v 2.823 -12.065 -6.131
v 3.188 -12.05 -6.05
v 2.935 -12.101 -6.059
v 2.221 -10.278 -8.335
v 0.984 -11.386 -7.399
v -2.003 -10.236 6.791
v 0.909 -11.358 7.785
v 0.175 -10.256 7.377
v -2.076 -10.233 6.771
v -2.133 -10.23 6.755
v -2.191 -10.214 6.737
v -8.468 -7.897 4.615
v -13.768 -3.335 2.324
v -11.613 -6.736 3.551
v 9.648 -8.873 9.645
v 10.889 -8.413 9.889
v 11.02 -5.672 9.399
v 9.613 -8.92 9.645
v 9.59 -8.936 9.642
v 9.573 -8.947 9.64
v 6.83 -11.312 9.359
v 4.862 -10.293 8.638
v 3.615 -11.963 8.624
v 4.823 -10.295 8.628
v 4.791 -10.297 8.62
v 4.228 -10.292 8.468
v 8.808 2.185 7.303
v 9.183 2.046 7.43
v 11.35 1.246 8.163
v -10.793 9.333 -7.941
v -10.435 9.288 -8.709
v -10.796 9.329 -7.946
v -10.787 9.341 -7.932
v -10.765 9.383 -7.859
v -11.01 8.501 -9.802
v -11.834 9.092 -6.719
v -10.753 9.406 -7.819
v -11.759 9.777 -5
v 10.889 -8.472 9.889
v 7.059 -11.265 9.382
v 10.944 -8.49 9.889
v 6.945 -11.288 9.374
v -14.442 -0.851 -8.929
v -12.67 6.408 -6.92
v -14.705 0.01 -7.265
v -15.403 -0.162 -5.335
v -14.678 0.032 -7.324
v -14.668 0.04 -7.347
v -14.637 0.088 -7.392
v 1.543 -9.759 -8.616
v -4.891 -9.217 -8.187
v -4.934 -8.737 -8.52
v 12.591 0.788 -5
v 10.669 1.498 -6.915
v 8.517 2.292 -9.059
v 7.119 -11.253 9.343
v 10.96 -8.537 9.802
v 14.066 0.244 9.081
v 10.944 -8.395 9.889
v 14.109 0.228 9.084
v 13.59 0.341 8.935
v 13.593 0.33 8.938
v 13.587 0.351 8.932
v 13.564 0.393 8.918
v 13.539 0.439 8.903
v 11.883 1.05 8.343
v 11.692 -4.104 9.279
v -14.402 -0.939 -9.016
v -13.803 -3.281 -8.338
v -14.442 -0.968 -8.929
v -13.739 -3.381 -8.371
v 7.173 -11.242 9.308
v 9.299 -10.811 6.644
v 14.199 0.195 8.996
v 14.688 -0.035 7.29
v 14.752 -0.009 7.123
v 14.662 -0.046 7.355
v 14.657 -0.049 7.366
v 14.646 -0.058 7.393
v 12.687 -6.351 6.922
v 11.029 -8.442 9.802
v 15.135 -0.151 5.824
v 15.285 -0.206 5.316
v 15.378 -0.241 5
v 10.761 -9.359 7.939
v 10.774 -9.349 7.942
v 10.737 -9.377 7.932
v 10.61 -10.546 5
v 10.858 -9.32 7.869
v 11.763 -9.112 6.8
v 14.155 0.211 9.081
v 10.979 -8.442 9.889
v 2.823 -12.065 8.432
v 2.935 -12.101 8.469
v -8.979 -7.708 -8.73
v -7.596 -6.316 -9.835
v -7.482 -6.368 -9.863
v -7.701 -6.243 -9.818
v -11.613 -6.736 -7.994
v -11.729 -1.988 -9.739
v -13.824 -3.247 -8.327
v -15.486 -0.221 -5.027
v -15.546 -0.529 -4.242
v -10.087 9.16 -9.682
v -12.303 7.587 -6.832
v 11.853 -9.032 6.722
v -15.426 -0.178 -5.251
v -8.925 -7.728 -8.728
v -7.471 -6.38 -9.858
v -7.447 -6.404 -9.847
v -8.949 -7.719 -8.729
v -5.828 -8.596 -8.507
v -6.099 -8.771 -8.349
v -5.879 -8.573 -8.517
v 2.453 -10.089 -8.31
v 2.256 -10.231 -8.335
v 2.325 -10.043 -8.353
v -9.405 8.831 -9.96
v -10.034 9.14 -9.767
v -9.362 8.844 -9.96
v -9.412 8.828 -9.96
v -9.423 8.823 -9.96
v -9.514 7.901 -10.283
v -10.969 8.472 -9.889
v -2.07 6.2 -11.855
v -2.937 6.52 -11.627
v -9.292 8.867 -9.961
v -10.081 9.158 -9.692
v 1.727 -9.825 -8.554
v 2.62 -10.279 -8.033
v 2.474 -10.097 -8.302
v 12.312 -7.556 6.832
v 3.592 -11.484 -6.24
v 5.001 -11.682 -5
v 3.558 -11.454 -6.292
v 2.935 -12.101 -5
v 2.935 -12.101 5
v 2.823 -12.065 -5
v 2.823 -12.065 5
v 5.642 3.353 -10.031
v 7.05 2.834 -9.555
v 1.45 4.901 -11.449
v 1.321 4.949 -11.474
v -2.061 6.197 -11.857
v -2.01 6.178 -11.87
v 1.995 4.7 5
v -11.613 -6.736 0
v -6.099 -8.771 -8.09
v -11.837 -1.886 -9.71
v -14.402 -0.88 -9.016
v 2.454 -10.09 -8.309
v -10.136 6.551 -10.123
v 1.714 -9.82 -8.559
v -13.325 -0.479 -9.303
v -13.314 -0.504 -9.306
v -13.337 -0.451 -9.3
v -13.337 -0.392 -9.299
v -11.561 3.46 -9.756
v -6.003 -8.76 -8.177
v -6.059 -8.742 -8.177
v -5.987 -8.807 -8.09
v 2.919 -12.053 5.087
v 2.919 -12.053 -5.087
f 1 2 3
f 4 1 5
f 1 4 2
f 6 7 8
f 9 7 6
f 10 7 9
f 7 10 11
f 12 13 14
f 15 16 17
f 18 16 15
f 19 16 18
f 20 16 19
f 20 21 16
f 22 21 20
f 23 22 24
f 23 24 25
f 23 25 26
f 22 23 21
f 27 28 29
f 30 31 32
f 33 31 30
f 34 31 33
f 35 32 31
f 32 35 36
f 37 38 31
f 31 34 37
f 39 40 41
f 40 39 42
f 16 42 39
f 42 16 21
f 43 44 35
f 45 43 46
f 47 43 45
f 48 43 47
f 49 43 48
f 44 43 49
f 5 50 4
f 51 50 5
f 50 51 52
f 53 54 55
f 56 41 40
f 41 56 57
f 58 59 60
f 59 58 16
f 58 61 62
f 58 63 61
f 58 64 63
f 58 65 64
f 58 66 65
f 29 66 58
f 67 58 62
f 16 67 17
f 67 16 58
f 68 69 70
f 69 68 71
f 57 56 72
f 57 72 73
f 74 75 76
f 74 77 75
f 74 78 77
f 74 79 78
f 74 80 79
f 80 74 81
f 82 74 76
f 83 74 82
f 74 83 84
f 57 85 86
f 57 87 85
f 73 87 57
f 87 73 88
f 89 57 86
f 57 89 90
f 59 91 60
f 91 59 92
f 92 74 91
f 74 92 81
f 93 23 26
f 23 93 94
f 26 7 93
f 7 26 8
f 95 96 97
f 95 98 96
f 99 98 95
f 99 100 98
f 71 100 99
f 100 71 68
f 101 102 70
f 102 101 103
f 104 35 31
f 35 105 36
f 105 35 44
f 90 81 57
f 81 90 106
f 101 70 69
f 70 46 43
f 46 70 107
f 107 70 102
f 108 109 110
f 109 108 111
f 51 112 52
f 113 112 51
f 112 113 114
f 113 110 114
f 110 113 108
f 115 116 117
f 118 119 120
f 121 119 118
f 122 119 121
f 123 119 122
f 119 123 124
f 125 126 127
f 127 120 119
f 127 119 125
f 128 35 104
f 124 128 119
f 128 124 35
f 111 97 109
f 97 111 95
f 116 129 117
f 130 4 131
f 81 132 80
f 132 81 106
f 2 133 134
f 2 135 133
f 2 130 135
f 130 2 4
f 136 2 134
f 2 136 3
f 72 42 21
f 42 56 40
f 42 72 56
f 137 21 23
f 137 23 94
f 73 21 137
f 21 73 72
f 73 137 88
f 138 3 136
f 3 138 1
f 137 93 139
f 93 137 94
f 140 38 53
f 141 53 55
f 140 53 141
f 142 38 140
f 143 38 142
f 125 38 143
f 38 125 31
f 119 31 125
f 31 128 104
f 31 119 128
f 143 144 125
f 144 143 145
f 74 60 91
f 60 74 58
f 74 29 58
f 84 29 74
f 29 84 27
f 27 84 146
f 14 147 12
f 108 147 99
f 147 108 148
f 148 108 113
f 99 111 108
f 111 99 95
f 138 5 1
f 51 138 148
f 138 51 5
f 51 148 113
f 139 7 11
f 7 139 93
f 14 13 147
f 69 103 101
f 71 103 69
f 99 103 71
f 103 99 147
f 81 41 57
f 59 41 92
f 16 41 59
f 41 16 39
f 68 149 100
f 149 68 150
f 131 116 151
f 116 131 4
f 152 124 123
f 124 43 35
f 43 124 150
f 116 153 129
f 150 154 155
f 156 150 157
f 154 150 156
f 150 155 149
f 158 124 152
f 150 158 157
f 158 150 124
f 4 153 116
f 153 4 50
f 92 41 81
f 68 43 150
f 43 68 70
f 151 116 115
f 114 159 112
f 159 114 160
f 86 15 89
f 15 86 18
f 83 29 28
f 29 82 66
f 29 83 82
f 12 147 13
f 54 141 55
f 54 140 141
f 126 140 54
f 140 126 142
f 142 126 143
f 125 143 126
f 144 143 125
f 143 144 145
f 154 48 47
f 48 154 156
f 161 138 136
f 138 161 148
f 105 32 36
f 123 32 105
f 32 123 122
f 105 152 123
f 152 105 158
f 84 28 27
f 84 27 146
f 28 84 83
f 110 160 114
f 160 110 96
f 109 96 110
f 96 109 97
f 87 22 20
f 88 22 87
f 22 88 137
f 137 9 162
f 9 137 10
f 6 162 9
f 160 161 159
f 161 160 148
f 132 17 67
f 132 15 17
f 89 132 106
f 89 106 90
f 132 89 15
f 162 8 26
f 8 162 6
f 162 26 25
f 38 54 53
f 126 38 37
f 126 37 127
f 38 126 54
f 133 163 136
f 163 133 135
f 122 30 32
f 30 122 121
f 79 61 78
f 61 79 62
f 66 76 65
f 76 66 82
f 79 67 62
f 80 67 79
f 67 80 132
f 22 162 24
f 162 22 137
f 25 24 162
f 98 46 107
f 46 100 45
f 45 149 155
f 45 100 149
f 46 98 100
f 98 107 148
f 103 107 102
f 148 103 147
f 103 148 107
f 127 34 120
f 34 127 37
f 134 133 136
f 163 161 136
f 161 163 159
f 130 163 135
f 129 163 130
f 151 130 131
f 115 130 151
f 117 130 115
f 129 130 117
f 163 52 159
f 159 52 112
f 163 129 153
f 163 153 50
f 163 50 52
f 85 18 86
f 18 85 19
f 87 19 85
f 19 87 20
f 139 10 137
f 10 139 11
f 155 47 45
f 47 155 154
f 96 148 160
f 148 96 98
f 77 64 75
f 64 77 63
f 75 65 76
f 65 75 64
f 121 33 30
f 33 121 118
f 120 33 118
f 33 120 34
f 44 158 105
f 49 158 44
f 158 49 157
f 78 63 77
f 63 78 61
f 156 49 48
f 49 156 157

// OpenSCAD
// Auto-generated OpenSCAD file

    inner_points = 10*[[-1.6167766456007826, 0.06384352681284394, 0.5000000000001501], [-1.2704727596155507, 1.001965916776716, 0.5000000000009248], [1.2704671898464706, -1.0019702419428729, -0.5000000000009248], [1.6167710758317024, -0.06384785197900072, -0.5000000000001501], [-1.616776645600842, 0.06384352681369176, -0.4999999999998499], [-1.27047275961561, 1.0019659167775639, -0.4999999999990751], [-1.0653621399346023, -0.13970879018153537, 1.309016994374892], [-0.7190582539493701, 0.7984135997823368, 1.3090169943756669], [0.7190526841802901, -0.7984179249484936, -1.3090169943756669], [1.065356570165522, 0.1397044650153786, -1.309016994374892], [1.2704671898465298, -1.0019702419437206, 0.4999999999990751], [1.616771075831762, -0.06384785197984855, 0.4999999999998499], [-1.0653621399347575, -0.13970879017931587, -1.3090169943750025], [-0.7190582539495255, 0.7984135997845563, -1.309016994374228], [-0.17315472787705996, -0.4690633575663862, 1.6180339887495077], [0.17314915810817202, 0.469059032397486, 1.6180339887502821], [-0.17315472787725203, -0.46906335756364276, -1.6180339887502821], [0.17314915810797996, 0.4690590324002294, -1.6180339887495077], [0.7190526841804455, -0.7984179249507131, 1.309016994374228], [1.0653565701656773, 0.13970446501315908, 1.3090169943750025], [-1.1532320243432654, -0.6676798043957903, -4.976019596369952e-13], [0.2903898933803613, -1.2005866887736487, -0.5000000000010351], [-0.6018175186770848, -0.8712321213901697, 0.8090169943742446], [0.29038989338042065, -1.2005866887744965, 0.49999999999896494], [-0.6018175186771807, -0.8712321213887979, -0.8090169943756502]];

    outer_points = 10*[[1.6901206881155384, -0.09096313382919773, -0.05702417590571207], [1.4361259474809793, 0.09096313382919773, 0.8929176669804033], [-1.4361259474809793, -0.09096313382919773, -0.8929176669804033], [-1.6901206881155384, 0.09096313382919773, 0.05702417590571207], [1.3468981581679096, -1.0261485852376606, 0.03030546631443143], [1.0929034175333503, -0.8442223175792652, 0.9802473092005468], [1.4362832392717357, 0.8442223175792652, -0.30399526943371824], [1.1822884986371764, 1.0261485852376606, 0.6459465734523971], [-1.1822884986371764, -1.0261485852376606, -0.6459465734523971], [-1.4362832392717357, -0.8442223175792652, 0.30399526943371824], [-1.0929034175333503, 0.8442223175792652, -0.9802473092005468], [-1.3468981581679096, 1.0261485852376606, -0.03030546631443143], [0.5377149901641148, -1.6041249799925041, -0.07536329787601459], [0.2837202495295557, -1.4221987123341089, 0.8745785450101007], [0.6823430894772717, 1.4221987123341089, -0.6162732507806177], [0.4283483488427125, 1.6041249799925041, 0.3336685921054976], [-0.4283483488427125, -1.6041249799925041, -0.3336685921054976], [-0.6823430894772717, -1.4221987123341089, 0.6162732507806177], [-0.2837202495295557, 1.4221987123341089, -0.8745785450101007], [-0.5377149901641148, 1.6041249799925041, 0.07536329787601459], [1.0297392522827944, -0.4450863344613457, -0.719212304749417], [-0.5333840655154644, -0.4450863344613457, -1.1371590502867626], [0.775901803438992, 0.49009911694711733, -0.9661833982774231], [-0.1901615355678355, 0.49009911694711733, -1.224488692506906], [0.2205560842789998, -1.0230627292161891, -0.824881068939863]];

    // Convex hull for inner set (I)
    module inner_hull() {
        hull() {
            for (p = inner_points) {
                translate(p) sphere(r=0.1);
            }
        }
    }

    // Convex hull for outer set (O) minus inner hull (O \ I)
    module outer_minus_inner() {
        difference() {
            hull() {
                for (p = outer_points) {
                    translate(p) sphere(r=0.1);
                }
            }
            inner_hull(); // Subtract inner hull
        }
    }

    // Convex hull for outer set (O) minus all translated inner hulls
    module outer_minus_AllTranslationInner() {
        difference() {
            hull() {
                for (p = outer_points) {
                    translate(p) sphere(r=0.1);
                }
            }
            hull() {
                translate([0,0,50]) inner_hull();
                translate([0,0,-50]) inner_hull();
            }; // Subtract translated inner hulls
        }
    }

    // Difference between outer_minus_inner and outer_minus_AllTranslationInner
    module outer_minus_inner_diff() {
        difference() {
            // Outer minus inner
            difference() {
                hull() {
                    for (p = outer_points) {
                        translate(p) sphere(r=0.1);
                    }
                }
                inner_hull();
            }

            // Subtract Outer minus AllTranslationInner
            difference() {
                hull() {
                    for (p = outer_points) {
                        translate(p) sphere(r=0.1);
                    }
                }
                hull() {
                    translate([0,0,50]) inner_hull();
                    translate([0,0,-50]) inner_hull();
                };
            }
        }
    }

    // Rendering all with colors applied
    color([1, 1, 0, 1]) outer_minus_inner_diff(); // Opaque yellow
    
